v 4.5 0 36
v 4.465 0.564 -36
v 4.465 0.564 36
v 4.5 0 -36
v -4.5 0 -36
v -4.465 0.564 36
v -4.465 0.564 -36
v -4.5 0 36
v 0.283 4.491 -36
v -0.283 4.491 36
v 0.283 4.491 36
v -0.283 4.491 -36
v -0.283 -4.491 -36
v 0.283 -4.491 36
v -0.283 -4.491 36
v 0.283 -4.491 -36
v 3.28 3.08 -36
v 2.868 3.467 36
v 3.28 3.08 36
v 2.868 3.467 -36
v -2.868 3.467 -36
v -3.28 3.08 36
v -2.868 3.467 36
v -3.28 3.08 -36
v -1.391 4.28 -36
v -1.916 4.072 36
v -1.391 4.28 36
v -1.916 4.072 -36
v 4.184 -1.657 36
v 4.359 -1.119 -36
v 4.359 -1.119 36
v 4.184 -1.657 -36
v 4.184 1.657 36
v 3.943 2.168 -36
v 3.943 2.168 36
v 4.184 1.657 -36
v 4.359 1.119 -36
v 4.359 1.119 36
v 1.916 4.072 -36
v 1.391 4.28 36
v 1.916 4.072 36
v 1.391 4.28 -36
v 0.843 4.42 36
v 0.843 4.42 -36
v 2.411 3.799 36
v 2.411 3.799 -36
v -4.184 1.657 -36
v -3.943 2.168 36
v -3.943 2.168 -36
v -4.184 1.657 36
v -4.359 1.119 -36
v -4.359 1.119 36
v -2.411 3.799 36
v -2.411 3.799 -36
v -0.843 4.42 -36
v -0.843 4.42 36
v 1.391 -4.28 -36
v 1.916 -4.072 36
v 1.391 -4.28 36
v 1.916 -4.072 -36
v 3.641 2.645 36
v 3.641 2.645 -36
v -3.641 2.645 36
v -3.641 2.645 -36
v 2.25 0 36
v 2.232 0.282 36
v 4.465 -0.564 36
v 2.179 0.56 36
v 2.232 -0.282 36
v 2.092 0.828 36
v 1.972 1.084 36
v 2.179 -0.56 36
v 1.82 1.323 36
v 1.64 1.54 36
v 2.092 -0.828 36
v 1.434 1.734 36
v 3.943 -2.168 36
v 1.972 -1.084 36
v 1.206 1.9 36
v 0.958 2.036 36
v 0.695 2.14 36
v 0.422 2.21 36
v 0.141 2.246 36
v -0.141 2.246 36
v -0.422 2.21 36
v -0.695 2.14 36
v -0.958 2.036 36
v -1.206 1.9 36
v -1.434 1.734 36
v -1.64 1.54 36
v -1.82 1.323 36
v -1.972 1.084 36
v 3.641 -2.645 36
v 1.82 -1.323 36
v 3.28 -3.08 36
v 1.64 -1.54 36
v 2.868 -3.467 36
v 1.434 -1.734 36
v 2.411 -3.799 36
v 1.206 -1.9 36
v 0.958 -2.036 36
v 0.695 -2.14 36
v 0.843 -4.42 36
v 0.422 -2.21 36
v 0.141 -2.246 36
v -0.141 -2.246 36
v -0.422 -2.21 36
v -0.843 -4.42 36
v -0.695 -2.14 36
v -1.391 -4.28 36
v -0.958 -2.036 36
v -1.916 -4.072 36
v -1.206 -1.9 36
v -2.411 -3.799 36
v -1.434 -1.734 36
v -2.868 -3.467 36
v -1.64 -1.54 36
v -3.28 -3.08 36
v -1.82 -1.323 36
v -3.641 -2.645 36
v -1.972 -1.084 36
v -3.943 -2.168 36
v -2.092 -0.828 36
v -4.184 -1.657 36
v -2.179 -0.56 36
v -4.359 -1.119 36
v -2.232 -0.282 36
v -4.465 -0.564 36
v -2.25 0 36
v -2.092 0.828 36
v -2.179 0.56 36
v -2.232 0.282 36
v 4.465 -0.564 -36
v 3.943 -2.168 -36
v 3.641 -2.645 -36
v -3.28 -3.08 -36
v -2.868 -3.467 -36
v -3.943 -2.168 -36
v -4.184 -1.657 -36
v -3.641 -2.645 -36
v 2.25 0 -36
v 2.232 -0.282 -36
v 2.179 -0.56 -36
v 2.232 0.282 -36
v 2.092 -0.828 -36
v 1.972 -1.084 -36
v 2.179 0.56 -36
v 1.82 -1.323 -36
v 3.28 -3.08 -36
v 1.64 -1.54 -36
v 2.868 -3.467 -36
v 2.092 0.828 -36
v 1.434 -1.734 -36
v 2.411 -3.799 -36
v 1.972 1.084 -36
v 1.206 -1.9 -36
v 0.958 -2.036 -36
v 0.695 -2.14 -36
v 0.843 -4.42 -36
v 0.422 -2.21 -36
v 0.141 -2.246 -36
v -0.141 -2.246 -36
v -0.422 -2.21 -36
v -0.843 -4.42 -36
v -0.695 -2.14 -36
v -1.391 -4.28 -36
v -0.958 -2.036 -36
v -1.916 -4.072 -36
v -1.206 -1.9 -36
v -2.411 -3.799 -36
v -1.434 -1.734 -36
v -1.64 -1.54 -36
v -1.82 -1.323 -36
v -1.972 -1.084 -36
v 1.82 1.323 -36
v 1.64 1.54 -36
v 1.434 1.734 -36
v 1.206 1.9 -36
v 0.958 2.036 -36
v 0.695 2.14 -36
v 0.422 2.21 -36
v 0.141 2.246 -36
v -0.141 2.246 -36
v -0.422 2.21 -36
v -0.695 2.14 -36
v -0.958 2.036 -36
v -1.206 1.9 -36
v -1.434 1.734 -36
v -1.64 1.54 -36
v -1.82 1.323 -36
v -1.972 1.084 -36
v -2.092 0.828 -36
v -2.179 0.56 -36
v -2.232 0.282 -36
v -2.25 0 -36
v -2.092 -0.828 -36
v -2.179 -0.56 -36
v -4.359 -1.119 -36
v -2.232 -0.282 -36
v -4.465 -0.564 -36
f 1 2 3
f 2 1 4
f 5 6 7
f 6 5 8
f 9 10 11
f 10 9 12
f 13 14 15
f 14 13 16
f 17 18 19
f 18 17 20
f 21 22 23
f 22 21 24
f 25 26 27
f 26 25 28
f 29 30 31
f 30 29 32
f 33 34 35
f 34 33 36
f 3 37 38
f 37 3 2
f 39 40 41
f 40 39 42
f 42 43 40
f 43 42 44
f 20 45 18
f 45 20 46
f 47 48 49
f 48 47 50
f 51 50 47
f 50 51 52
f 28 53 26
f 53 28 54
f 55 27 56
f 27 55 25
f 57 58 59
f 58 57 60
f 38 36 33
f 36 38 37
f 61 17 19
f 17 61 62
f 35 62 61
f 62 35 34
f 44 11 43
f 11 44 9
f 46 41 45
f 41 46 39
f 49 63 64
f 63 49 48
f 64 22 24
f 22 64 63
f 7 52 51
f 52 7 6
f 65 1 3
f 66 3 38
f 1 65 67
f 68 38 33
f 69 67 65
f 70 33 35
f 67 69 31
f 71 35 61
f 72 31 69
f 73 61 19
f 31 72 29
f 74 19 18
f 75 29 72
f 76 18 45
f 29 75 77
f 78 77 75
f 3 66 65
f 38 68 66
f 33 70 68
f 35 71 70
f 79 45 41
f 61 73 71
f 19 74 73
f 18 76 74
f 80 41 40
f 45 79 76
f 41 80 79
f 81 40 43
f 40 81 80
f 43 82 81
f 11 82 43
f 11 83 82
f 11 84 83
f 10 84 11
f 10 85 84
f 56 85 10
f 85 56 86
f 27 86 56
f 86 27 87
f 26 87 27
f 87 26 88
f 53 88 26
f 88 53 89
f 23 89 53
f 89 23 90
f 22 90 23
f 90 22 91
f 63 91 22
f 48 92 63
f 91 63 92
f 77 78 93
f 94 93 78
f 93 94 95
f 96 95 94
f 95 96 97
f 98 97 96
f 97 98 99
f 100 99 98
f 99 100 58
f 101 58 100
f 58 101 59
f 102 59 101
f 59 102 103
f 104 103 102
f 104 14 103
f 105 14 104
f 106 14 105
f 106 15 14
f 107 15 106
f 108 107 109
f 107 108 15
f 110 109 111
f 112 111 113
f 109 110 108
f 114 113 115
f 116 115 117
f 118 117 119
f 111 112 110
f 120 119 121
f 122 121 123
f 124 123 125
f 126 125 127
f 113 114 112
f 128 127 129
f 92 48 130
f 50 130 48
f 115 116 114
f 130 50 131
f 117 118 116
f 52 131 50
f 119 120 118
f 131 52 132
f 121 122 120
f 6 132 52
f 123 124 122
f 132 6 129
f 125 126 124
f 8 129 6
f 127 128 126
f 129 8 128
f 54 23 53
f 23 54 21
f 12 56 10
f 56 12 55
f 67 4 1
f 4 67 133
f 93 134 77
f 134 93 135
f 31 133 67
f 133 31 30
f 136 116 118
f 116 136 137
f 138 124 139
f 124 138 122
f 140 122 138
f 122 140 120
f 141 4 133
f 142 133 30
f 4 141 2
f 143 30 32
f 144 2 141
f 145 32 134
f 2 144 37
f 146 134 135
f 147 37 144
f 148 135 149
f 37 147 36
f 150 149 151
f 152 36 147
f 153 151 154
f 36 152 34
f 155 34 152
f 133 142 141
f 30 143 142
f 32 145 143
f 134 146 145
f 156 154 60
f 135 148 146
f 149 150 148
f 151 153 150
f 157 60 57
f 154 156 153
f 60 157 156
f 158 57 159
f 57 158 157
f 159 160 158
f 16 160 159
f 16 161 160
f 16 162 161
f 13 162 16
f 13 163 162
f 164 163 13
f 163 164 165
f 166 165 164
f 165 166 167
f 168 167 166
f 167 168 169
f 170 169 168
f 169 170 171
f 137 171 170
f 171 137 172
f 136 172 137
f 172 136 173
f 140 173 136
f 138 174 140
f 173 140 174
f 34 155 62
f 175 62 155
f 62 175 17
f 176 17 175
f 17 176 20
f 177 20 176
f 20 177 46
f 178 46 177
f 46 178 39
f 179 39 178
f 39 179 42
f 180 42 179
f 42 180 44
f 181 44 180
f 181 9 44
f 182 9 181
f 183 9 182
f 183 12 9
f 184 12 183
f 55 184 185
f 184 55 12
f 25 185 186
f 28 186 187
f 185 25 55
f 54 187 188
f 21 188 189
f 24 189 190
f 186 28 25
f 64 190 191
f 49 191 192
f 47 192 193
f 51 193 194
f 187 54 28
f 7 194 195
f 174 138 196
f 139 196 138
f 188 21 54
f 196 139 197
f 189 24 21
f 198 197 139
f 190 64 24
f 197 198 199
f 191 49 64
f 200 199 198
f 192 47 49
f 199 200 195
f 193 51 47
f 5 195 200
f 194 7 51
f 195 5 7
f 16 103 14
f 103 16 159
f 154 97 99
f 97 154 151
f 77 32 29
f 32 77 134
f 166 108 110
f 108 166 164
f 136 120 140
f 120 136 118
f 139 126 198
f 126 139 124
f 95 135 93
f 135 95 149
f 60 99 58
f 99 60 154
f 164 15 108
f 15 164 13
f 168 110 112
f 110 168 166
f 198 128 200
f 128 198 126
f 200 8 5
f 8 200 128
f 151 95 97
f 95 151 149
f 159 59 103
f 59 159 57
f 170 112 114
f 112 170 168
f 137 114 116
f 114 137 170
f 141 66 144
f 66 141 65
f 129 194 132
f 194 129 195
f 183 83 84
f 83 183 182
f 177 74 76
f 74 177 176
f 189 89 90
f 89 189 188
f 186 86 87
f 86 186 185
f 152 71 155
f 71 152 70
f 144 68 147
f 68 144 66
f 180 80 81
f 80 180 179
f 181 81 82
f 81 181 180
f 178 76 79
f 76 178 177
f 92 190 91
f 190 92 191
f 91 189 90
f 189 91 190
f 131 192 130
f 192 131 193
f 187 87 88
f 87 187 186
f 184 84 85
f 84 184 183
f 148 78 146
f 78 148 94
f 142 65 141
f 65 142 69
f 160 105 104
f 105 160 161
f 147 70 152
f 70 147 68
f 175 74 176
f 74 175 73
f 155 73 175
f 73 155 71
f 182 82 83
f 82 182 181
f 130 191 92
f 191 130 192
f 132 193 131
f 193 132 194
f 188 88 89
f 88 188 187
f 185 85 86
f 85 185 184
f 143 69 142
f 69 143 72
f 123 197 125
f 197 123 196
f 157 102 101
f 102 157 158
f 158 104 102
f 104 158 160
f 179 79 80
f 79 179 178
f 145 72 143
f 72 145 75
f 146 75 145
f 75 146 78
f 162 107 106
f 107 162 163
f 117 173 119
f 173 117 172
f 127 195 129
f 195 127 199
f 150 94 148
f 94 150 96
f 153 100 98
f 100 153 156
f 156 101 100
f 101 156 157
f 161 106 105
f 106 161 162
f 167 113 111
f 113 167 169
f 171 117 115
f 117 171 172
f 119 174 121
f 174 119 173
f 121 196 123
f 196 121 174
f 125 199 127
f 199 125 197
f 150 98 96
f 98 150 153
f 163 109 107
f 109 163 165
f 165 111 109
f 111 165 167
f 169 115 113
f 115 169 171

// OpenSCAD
$fn = 50;


difference() {
	union() {
		translate(v = [0, 0, -36.0000000000]) {
			cylinder(h = 72, r = 4.5000000000);
		}
	}
	union() {
		translate(v = [0, 0, -100.0000000000]) {
			cylinder(h = 200, r = 2.2500000000);
		}
	}
}
